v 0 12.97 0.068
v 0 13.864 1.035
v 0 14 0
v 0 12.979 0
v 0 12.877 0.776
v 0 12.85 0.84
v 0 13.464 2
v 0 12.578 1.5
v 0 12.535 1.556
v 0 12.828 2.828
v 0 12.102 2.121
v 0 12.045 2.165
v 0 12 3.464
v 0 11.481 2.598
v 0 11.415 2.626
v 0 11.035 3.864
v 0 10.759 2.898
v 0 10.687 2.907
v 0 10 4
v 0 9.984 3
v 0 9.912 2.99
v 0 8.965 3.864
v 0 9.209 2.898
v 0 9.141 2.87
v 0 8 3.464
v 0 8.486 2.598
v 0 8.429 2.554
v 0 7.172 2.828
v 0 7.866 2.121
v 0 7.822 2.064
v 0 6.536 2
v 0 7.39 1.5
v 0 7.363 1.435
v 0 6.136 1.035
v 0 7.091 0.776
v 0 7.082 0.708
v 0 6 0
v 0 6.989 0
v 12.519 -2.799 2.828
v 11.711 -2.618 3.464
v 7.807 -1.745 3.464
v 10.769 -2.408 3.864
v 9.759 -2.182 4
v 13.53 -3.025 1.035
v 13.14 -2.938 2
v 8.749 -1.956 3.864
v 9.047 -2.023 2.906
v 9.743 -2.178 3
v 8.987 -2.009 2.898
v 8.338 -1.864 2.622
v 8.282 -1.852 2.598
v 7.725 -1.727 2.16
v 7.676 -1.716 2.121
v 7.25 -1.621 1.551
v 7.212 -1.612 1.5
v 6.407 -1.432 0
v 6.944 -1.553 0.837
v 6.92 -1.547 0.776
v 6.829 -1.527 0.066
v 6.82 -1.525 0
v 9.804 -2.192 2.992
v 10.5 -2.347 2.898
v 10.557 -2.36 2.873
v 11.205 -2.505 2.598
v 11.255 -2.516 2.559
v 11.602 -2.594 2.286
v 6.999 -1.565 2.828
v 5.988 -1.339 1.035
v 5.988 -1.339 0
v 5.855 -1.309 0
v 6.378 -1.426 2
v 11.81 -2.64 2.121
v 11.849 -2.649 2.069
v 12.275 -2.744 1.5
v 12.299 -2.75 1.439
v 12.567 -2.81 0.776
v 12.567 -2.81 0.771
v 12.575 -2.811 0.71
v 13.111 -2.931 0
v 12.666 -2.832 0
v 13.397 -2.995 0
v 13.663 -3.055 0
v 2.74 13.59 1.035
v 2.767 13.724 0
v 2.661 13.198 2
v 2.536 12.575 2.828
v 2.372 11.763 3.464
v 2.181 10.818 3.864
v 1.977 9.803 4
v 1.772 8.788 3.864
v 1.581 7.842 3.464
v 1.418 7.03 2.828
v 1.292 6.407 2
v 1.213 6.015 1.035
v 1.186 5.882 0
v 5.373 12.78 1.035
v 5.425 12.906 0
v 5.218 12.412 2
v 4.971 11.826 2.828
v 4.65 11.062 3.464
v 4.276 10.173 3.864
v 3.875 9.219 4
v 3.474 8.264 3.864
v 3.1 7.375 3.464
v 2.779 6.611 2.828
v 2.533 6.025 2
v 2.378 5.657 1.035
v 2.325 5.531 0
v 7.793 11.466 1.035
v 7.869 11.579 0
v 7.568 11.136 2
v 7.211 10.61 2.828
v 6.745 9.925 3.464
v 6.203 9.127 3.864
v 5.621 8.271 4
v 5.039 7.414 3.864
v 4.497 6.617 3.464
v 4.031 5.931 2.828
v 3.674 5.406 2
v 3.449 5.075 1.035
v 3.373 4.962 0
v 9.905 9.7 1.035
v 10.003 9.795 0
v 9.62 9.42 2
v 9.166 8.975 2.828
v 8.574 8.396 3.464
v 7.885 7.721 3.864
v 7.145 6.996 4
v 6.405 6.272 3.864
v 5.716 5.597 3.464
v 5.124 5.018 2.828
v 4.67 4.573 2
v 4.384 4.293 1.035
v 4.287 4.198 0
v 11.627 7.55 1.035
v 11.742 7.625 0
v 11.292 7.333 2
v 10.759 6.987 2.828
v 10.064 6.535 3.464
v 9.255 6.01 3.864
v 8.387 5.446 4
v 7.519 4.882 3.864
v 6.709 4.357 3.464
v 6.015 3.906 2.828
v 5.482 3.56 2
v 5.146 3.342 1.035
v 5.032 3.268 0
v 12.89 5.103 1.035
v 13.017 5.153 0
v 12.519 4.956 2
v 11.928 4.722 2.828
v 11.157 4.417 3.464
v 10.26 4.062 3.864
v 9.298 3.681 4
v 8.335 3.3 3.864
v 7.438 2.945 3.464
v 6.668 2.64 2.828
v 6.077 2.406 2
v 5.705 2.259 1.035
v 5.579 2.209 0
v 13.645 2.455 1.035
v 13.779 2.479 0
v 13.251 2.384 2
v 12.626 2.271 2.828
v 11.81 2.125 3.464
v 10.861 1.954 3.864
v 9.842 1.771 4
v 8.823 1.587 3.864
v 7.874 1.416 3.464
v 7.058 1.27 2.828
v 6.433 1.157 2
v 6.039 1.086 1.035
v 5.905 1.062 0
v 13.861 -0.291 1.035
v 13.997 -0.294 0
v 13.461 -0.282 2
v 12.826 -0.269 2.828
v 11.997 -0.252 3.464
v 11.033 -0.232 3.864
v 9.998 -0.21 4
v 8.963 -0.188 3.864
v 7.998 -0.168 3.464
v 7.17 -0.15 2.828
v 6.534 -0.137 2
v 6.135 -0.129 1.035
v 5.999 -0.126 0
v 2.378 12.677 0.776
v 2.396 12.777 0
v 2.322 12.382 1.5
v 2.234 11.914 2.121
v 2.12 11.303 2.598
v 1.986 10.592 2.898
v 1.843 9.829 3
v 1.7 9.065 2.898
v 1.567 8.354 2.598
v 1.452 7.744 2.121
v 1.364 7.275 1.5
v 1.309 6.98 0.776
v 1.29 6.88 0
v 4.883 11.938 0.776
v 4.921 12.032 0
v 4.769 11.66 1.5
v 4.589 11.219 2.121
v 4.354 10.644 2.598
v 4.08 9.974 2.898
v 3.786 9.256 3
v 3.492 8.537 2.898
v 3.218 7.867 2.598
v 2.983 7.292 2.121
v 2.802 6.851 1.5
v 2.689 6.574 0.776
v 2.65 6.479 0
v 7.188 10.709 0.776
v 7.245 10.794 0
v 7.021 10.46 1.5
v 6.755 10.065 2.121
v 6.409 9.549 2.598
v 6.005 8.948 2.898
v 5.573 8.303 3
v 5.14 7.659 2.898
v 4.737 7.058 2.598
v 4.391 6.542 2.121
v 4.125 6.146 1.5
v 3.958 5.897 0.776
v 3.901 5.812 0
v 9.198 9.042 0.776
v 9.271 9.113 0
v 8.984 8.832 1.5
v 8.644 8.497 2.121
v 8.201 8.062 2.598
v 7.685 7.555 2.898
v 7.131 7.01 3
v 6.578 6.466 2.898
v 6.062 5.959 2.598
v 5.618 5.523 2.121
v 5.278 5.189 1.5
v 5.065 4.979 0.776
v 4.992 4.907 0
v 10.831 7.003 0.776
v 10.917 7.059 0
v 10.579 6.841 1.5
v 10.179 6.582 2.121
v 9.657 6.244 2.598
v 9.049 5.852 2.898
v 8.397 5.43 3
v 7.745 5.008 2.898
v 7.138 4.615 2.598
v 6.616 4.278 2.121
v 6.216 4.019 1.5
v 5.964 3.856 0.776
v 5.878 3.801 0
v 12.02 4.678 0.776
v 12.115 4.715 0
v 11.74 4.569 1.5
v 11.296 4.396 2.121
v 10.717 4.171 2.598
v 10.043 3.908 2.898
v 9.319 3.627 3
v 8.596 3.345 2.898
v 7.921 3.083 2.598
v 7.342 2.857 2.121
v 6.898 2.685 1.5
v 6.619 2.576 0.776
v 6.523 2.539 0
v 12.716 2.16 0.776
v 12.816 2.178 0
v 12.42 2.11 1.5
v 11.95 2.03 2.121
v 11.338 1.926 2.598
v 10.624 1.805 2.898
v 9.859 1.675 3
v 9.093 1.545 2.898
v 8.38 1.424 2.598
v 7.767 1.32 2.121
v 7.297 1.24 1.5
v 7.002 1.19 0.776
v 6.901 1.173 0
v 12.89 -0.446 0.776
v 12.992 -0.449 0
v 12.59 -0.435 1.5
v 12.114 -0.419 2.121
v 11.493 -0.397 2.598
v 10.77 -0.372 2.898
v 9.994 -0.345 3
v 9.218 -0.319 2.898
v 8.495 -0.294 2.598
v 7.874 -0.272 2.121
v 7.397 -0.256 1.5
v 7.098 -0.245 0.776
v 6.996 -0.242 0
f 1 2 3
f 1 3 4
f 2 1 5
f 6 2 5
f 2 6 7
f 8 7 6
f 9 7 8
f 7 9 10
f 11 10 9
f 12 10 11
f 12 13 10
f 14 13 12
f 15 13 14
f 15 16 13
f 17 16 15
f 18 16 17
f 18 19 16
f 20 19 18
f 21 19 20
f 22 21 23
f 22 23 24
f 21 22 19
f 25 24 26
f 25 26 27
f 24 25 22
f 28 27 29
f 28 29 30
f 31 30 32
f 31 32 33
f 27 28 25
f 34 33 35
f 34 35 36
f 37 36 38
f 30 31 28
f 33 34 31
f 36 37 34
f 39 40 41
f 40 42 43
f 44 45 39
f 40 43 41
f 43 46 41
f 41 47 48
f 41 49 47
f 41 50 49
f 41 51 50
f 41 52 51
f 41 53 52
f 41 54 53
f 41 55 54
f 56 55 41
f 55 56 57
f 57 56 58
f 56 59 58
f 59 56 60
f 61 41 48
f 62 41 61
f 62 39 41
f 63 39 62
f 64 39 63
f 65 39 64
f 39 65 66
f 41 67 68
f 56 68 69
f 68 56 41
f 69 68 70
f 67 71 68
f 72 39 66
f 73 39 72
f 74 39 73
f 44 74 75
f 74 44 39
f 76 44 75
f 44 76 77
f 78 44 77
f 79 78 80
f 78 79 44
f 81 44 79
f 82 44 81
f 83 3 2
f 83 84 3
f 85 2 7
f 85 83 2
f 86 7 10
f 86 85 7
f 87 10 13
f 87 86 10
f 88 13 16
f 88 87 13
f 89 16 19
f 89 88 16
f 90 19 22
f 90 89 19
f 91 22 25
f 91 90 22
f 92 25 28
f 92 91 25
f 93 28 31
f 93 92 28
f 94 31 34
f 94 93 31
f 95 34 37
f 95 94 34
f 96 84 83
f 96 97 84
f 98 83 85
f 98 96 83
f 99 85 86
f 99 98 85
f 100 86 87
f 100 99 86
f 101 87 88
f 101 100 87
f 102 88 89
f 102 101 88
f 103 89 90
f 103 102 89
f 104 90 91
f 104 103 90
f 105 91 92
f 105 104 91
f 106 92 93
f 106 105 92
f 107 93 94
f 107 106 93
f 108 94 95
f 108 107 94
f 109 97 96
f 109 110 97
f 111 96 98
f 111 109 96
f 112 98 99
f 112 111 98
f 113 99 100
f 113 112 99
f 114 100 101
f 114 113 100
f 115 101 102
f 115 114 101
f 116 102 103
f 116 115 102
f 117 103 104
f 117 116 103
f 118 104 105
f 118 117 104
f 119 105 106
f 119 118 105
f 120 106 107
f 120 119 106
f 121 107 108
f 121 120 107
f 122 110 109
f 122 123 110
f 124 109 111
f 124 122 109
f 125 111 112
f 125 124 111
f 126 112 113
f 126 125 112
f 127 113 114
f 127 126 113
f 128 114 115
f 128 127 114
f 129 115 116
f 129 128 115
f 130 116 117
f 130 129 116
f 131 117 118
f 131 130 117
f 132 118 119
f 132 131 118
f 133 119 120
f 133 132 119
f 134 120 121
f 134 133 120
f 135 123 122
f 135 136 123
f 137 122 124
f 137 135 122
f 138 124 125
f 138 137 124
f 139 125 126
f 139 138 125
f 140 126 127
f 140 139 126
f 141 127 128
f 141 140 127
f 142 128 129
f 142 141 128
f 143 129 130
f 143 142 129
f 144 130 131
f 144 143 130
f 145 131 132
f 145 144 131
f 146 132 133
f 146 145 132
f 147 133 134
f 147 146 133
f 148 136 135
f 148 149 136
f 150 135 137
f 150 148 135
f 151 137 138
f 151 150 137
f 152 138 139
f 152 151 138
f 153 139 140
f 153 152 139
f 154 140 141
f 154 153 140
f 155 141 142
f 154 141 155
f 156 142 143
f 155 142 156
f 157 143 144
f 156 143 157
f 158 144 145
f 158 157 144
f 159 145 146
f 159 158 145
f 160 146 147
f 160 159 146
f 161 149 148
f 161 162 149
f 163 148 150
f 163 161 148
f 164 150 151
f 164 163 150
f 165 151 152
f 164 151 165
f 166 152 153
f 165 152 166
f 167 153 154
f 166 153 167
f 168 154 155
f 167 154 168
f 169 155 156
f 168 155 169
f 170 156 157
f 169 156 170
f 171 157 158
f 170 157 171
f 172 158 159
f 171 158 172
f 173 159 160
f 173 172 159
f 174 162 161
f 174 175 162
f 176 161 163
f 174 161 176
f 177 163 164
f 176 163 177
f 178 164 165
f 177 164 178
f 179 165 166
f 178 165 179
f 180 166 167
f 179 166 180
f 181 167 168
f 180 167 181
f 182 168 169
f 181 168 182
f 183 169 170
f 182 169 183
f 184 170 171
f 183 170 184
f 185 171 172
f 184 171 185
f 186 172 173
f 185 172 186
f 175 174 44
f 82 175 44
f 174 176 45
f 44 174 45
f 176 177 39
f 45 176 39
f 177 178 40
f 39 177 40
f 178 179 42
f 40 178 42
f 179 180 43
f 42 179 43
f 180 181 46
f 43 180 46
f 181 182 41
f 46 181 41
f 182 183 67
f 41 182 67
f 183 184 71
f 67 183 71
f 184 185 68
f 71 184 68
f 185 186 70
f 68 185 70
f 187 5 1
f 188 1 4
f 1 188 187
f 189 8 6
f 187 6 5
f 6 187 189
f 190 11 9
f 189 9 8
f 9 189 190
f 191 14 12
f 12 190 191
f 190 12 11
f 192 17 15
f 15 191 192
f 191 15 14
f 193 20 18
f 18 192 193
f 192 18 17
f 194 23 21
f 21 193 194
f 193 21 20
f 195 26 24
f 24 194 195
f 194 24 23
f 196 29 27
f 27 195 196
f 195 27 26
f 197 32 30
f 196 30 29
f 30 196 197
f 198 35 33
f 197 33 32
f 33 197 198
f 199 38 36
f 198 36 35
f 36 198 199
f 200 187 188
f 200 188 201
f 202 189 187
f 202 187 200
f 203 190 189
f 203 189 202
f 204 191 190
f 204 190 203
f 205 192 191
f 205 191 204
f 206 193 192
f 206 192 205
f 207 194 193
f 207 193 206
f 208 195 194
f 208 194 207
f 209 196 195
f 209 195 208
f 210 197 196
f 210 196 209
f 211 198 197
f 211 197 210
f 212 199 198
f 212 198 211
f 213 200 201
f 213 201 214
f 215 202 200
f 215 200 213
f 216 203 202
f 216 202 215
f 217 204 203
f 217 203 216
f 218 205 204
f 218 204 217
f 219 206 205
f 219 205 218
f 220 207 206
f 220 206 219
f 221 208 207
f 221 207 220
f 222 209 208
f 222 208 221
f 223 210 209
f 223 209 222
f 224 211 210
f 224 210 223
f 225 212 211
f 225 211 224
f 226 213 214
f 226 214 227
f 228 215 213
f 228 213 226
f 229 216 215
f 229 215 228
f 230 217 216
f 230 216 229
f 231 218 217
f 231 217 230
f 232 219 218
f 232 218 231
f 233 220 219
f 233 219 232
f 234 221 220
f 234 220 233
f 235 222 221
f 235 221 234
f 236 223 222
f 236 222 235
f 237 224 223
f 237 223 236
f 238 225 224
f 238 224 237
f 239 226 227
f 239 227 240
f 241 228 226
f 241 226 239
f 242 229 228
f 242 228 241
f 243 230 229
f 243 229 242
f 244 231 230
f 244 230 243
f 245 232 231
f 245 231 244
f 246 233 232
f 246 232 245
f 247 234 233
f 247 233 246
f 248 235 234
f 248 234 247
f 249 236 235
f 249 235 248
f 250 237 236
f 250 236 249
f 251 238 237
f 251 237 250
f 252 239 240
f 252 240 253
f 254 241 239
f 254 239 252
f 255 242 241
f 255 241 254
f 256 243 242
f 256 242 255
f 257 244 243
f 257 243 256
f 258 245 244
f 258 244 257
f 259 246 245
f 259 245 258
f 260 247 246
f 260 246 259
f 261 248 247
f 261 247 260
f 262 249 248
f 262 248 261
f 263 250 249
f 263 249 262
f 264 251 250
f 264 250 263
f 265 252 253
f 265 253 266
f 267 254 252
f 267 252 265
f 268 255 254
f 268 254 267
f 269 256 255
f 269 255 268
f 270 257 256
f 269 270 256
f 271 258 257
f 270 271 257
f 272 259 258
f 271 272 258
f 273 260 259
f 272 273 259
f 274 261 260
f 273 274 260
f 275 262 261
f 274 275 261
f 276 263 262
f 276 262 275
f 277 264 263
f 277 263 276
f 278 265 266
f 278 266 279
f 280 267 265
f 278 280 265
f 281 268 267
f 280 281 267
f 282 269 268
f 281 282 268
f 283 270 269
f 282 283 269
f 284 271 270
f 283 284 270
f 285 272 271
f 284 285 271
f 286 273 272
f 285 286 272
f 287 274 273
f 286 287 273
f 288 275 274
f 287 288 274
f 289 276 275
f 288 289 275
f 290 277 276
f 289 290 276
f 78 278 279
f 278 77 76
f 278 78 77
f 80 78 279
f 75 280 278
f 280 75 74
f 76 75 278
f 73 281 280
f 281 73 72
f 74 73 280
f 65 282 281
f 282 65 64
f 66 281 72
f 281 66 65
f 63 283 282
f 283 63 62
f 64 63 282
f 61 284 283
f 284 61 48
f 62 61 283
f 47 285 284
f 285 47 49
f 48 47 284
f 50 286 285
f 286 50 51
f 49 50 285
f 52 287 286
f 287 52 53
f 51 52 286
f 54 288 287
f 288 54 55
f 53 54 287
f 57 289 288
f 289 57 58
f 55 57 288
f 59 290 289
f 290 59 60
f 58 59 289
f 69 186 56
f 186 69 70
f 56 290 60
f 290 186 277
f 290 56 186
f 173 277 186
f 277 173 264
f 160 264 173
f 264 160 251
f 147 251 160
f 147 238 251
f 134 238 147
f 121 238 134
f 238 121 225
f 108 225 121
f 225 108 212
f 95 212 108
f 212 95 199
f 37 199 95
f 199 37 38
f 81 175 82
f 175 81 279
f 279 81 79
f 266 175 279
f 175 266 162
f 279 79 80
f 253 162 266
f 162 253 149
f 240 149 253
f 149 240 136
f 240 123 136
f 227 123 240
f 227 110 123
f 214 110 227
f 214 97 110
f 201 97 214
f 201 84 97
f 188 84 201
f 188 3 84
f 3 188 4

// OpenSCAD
// file: ../build_environments.scad
// build_environments.scad: modules to build level sections
//

module pool(diameter=10.0, wall_height=2.0, step_width=3.0, connections=[])
{
    difference() {
        union() {
        difference() {
            cylinder(h=0.5,r1=diameter+step_width,r2=diameter+step_width,$fn=48);
            translate([0,0,-0.1])
                cylinder(h=0.7,r1=diameter,r2=diameter,$fn=48);
        }
        difference() {
            cylinder(h=wall_height,r1=diameter+step_width+1.0,r2=diameter+step_width+1.0,$fn=48);
            translate([0,0,-0.1])
                cylinder(h=wall_height+0.2,r1=diameter+step_width,r2=diameter+step_width,$fn=48);
        }
        }
    
        for (c = connections)
        {
            rotate([0,90,0]) {
                angle = atan2(c[1],c[0]);
                rotate([-angle,0,0]) {
                    cylinder(h=diameter+5.0,r1=c[2],r2=c[2],$fn=48);
                }
            }
        }
    }
}

module straight(length=10.0, width=2.0, dy1=0.0, dy2=0.0, dz=0.0)
{
    dims = [0, 0, 0, 0, 0, (dz/length)];
    matrix = [
        [ 1, dims[0], dims[1], 0 ],
        [ dims[2], 1, dims[4], 0 ],
        [ dims[5], dims[3], 1, 0 ],
        [ 0, 0, 0, 1 ]
    ];
    multmatrix(matrix)
    difference() {
        translate([dy1,0,0])
        union() {
            rotate([0,90,0]) {
                difference() {
                    cylinder(h=(length-dy1-dy2),r1=width+1.0,r2=width+1.0,$fn=24);
                    translate([0,0,-0.1])
                        cylinder(h=(length-dy1-dy2+0.2),r1=width,r2=width,$fn=24);
                }
                difference() {
                    cylinder(h=1.0,r1=width+2.0,r2=width+2.0,$fn=24);
                    translate([0,0,-0.1])
                        cylinder(h=1.2,r1=width,r2=width,$fn=24);
                }
                translate([0,0,(length-dy1-dy2)-1.0]) {
                    difference() {
                        cylinder(h=1.0,r1=width+2.0,r2=width+2.0,$fn=24);
                        translate([0,0,-0.1])
                            cylinder(h=1.2,r1=width,r2=width,$fn=24);
                    }
                }
            }
        }
        translate([0,0,-(2*width+4.0)/2])
            cube([3*length,3*length,2*width+4.0],center=true);
    }
}

module curve(p0=[0,0], center=[0,0], dir=1, angle=0.0, width=2.0)
{
    radius = sqrt((p0[0]-center[0])*(p0[0]-center[0]) + (p0[1]-center[1])*(p0[1]-center[1]));
    if (dir == 0) {
        difference() {
            rotate([0,0,-90])
            difference() {
                rotate_extrude(angle = angle, convexity = 10, $fn=32)
                    translate([radius, 0, 0])
                        circle(r = width+1.0,$fn=24);
                rotate([0,0,-1.0])
                    rotate_extrude(angle = angle+2.0, convexity = 10, $fn=32)
                        translate([radius, 0, 0])
                            circle(r = width,$fn=24);
            }
            translate([0,0,-(2*width+4.0)/2])
                cube([5*radius,5*radius,2*width+4.0],center=true);
        }
    }
    else {
        difference() {
            rotate([0,0,90])
            difference() {
                rotate_extrude(angle = -angle, convexity = 10, $fn=32)
                    translate([radius, 0, 0])
                        circle(r = width+1.0,$fn=24);
                rotate([0,0,1.0])
                    rotate_extrude(angle = -angle-2.0, convexity = 10, $fn=32)
                        translate([radius, 0, 0])
                            circle(r = width,$fn=24);
            }
            translate([0,0,-(2*width+4.0)/2])
                cube([5*radius,5*radius,2*width+4.0],center=true);
        }
    }

}

// test pool
//pool(diameter=12.0000, wall_height=3.0000, step_width=3.0000, connections=[[0.0000,-26.0000,2.0000], [23.6074,0.0000,2.0000]]);

// test straight, slope
//straight(length=26.0000, width=2.0000, dy1=11.8322, dy2=6.7082, dz=0.0000);
//straight(length=29.1549, width=12.0000, dy1=0.0000, dy2=0.0000, dz=-15.0000);

// test curve
//curve(p0=[23.6074, 0.0000], center=[23.6074, 5.0000], dir=0, angle=60.1011, width=2.0000);
//curve(p0=[33.6426, 12.4219], center=[37.9771, 9.9295], dir=1, angle=120.4627, width=2.0000);
// main file
use <../build_environments.scad>;
curve(p0=[37.6935, 50.1079], center=[27.7433, 49.1113], dir=1, angle=102.6024, width=3.0000);
